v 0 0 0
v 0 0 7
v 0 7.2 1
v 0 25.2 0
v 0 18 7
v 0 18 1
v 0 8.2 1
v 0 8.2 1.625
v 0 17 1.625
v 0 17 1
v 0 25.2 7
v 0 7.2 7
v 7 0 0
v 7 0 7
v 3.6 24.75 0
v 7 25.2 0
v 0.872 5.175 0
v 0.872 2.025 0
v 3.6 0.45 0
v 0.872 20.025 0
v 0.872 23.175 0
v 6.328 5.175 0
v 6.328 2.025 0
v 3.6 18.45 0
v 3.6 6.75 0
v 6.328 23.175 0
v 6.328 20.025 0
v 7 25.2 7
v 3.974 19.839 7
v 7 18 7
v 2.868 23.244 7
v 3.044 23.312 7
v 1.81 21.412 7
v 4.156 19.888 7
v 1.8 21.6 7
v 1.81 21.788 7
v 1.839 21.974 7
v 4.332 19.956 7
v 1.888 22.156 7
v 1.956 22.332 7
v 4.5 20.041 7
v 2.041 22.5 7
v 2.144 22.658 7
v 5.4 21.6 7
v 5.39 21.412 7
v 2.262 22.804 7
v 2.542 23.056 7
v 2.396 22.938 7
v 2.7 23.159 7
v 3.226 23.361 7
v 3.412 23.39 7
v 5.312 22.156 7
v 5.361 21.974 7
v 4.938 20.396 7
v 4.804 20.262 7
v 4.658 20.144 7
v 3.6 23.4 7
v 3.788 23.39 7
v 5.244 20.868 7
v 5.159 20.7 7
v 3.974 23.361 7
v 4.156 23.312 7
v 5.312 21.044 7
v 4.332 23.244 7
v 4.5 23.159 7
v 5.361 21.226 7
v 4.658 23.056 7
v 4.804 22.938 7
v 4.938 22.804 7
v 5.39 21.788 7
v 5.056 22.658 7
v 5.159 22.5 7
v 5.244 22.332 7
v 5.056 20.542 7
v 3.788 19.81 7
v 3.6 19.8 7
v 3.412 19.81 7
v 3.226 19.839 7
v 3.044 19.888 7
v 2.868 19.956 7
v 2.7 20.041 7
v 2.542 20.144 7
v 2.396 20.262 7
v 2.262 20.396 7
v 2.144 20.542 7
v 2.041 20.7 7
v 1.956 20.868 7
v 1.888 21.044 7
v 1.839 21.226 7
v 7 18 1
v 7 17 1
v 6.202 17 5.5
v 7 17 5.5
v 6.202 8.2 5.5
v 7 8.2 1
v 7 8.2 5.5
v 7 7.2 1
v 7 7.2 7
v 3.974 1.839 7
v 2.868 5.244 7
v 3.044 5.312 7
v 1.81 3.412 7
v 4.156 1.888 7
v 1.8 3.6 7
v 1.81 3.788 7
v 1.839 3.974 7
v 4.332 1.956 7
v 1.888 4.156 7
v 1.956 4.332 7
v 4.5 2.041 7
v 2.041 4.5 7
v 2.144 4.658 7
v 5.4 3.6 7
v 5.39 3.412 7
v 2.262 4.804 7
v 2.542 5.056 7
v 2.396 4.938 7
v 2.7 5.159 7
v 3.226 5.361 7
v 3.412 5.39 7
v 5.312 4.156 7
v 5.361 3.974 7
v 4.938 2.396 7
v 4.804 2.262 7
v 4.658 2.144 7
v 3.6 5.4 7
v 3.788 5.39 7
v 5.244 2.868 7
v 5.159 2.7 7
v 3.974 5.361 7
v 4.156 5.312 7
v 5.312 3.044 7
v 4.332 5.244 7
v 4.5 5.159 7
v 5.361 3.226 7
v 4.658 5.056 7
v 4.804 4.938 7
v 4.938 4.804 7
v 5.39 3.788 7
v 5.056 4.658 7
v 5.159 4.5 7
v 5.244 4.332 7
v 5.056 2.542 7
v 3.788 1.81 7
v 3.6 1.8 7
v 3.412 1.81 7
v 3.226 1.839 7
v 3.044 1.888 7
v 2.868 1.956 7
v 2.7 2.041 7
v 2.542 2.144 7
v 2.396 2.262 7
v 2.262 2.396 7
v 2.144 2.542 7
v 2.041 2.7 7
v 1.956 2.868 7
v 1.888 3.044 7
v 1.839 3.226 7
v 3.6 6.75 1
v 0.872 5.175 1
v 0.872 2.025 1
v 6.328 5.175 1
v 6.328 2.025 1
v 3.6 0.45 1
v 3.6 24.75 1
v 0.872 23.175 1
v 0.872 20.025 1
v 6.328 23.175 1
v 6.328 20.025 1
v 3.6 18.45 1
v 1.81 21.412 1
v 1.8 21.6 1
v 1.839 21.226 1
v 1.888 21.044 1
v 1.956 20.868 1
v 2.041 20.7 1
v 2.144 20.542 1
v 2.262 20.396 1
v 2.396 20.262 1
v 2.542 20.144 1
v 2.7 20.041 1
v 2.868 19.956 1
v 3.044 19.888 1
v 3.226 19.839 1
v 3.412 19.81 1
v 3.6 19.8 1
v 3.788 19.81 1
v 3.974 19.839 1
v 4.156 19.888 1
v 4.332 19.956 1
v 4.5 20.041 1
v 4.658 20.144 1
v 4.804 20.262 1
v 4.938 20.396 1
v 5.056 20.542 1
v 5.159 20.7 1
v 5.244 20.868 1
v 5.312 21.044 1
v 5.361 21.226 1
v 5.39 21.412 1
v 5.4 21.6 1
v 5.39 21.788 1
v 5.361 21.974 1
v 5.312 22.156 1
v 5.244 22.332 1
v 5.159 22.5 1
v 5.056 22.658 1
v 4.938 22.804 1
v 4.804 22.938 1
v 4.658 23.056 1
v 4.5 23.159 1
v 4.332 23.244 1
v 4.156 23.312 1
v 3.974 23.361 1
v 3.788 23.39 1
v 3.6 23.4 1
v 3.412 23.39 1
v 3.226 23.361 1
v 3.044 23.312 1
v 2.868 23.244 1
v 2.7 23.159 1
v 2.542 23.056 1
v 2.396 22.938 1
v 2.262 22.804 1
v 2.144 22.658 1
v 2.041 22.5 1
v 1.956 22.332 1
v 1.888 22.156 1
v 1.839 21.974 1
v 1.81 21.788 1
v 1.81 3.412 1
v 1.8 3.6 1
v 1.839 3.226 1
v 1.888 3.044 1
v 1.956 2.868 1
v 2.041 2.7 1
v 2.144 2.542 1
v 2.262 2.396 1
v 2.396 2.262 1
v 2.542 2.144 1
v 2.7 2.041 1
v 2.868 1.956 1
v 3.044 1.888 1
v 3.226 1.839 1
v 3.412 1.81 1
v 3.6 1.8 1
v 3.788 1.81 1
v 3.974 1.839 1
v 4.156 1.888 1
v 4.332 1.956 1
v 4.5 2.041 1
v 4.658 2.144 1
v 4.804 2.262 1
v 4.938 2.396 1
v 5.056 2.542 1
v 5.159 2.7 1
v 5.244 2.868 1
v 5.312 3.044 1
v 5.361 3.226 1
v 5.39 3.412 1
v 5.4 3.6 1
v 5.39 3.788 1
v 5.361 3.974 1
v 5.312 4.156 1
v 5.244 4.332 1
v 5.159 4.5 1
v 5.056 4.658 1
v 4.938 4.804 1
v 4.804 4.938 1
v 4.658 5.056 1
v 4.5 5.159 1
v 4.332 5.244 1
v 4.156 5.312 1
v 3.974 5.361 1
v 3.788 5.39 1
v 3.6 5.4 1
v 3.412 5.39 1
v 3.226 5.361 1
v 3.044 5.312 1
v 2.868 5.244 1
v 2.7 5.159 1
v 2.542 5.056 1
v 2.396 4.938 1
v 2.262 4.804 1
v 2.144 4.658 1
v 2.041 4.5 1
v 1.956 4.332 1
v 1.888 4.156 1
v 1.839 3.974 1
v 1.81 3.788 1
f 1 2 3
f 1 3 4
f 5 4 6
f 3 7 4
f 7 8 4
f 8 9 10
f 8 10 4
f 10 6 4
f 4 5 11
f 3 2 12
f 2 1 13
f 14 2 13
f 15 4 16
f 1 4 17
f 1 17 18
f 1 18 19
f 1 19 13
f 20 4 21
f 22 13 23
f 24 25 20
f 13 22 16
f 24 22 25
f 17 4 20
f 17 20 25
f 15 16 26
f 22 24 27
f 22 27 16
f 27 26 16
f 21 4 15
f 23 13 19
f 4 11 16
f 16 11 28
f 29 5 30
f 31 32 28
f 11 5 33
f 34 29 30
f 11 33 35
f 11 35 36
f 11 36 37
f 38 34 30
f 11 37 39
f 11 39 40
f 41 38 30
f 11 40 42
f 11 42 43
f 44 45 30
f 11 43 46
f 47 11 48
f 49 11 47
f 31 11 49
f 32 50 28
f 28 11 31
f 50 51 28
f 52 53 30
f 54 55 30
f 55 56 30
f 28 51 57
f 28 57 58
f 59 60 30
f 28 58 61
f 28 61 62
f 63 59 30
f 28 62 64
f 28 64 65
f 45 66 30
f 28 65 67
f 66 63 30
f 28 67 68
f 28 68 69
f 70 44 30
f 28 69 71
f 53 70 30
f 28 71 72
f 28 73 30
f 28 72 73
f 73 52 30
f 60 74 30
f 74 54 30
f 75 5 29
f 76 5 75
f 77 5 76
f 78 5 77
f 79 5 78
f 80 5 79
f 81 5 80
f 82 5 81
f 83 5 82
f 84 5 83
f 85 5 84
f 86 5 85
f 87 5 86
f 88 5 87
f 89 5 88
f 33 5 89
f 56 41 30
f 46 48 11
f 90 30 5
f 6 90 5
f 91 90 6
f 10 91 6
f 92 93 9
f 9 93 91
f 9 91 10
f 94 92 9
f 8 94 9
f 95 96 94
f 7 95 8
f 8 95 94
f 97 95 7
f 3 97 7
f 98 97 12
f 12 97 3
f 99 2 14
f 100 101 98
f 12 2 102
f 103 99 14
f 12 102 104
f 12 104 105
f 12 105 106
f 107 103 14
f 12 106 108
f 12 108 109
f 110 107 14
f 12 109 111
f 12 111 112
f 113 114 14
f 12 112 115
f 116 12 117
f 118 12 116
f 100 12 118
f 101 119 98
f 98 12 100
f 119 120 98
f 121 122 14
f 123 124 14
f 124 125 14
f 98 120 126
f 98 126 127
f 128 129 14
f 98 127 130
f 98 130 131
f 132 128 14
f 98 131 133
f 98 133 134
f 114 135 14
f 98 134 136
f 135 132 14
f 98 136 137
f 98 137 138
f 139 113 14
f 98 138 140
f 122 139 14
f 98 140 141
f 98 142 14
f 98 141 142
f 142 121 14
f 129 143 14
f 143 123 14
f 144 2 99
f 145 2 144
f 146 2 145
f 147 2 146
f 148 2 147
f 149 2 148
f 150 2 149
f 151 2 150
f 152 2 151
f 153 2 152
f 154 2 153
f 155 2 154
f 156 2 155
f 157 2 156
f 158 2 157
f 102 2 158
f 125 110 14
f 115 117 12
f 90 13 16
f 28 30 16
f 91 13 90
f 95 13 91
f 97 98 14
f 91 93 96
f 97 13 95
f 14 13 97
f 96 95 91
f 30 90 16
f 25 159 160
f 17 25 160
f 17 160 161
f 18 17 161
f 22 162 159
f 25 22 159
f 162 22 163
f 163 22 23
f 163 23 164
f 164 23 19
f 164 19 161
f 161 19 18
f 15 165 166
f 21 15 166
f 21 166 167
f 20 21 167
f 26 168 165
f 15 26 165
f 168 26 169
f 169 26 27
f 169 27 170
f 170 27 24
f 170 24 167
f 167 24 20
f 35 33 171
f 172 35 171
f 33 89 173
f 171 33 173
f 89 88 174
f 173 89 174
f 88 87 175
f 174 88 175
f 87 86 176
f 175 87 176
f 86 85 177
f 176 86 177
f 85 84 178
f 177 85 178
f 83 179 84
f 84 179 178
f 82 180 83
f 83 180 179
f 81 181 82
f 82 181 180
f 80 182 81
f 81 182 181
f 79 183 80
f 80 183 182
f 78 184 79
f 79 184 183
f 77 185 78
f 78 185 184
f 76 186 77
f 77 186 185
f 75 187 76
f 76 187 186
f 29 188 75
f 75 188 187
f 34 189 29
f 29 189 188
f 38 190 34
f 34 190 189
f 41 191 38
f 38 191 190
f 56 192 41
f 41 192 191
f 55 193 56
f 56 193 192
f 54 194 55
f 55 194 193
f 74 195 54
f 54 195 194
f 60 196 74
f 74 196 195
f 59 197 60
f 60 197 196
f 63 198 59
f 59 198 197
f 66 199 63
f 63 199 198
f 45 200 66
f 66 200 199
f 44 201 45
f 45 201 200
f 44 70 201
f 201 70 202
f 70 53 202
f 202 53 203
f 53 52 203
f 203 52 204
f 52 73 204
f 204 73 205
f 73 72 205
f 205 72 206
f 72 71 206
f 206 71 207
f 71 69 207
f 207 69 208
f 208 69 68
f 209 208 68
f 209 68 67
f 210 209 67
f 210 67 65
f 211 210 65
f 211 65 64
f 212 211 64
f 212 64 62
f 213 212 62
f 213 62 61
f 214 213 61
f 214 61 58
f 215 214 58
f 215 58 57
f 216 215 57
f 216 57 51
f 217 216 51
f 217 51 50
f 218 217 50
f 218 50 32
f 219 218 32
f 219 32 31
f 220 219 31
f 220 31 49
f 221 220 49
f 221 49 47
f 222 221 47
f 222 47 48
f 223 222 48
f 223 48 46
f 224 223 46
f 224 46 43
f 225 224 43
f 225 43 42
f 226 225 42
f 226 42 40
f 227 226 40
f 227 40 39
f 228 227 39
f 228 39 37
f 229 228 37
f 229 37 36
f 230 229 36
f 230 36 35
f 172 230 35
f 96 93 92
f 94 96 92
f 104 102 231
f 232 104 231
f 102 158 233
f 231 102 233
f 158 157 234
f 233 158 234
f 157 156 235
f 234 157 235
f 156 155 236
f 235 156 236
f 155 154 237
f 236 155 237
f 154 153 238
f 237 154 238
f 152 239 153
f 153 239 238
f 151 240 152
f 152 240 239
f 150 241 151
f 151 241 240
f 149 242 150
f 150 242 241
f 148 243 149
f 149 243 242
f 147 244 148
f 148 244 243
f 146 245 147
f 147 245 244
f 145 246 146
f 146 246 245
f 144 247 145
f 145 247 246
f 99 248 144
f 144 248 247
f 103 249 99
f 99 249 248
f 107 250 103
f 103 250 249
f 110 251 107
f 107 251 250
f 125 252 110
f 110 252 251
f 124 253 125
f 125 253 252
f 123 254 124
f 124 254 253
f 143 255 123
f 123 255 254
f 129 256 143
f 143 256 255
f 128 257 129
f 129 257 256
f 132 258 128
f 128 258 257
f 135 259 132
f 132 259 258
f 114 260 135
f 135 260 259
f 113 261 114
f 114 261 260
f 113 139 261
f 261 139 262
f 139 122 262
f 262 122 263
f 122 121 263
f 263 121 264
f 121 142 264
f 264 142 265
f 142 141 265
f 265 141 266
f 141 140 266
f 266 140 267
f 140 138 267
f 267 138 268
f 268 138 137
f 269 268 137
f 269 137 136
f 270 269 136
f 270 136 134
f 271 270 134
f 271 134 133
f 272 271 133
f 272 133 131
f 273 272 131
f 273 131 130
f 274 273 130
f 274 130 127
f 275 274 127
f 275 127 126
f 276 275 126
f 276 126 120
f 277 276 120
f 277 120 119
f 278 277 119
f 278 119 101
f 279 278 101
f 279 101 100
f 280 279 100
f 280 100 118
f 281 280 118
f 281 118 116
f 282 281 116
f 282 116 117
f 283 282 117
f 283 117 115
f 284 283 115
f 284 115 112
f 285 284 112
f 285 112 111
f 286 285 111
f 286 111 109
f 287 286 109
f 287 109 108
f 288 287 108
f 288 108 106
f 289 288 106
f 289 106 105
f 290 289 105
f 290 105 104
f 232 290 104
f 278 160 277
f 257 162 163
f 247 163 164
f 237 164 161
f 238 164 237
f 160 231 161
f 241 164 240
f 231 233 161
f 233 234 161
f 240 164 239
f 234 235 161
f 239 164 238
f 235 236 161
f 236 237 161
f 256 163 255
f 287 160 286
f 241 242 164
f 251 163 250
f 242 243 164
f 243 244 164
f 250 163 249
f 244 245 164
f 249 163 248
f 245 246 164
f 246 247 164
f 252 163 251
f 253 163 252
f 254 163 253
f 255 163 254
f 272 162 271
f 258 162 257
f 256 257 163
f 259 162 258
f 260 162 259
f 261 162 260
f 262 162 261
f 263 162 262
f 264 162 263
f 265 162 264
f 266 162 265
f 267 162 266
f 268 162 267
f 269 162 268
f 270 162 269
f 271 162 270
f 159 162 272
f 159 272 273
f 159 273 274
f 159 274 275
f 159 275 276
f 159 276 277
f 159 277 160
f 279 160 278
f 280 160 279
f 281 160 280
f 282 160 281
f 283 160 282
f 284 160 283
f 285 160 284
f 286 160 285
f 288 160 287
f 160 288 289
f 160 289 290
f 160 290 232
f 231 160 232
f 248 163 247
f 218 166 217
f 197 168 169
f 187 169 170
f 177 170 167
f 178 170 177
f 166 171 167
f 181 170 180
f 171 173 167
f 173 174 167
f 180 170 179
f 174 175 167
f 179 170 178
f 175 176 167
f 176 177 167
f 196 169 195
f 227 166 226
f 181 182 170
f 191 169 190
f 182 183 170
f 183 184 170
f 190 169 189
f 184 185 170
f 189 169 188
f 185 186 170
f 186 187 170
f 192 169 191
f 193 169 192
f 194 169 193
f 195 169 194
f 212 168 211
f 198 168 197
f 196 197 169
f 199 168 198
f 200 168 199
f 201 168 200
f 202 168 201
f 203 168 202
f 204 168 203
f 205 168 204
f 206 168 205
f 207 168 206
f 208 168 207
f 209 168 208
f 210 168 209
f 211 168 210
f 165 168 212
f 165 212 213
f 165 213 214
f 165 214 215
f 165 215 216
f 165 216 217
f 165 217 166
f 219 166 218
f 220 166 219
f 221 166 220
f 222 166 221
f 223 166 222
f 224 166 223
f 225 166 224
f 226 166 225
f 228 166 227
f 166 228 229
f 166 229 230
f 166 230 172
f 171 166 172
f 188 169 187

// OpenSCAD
/*
 * belt clamp
 *
 * Clamp for the y-carriage incorporating a ratchet for easy tightening.
 *
 * Copyright 2012 <b@Zi.iS>
 * License CC BY 3.0
 *
 */
$fn = 60;

m3 = 3.6/2;
m3_nut = 6.3 /2;

hole_spacing = 18;

mount();

module mount(
	width = 7,
	pitch = 18,
	bolt = m3,
	nut = m3_nut,
	thickness = 7,
	belt_thickness = 1.5
) {
	length = pitch + bolt *4;

	difference() {
		cube([
			width,
			length,
			thickness
		]);

		translate([
			-1,
			bolt*4,
			1
		]) {
			cube([
				width+2,
				1,
				thickness
			]);
		}
		translate([
			-1,
			length-bolt*4-1,
			1
		]) {
			cube([
				width+2,
				1,
				thickness
			]);
		}
		translate([
			-1,
			bolt*4,
			thickness-belt_thickness
		]) {
			cube([
				width+2,
				pitch-bolt*4,
				belt_thickness+1
			]);
		}

		translate([
			-1,
			bolt*4,
			1
		]) {
			rotate([
				0,
				-32,
				0
			]) {
				cube([
					width+20,
					pitch-bolt*4,
					thickness
				]);
			}
		}
		
		translate([
			bolt*2,
			bolt*2,
			-1
		]) {
			cylinder(
				h = thickness+2,
				r = bolt
			);
		}
		translate([
			bolt*2,
			bolt*2 + pitch,
			-1
		]) {
			cylinder(
				h = thickness+2,
				r = bolt
			);
		}
		translate([
			bolt*2,
			bolt*2,
			-1
		]) {
			rotate([
				0,
				0,
				180/6
			]) {
				cylinder(
					h = 2,
					r = nut,
					$fn = 6
				);
			}
		}
		translate([
			bolt*2,
			bolt*2 + pitch,
			-1
		]) {
			rotate([
				0,
				0,
				180/6
			]) {
				cylinder(
					h = 2,
					r = nut,
					$fn = 6
				);
			}
		}
	}
}
